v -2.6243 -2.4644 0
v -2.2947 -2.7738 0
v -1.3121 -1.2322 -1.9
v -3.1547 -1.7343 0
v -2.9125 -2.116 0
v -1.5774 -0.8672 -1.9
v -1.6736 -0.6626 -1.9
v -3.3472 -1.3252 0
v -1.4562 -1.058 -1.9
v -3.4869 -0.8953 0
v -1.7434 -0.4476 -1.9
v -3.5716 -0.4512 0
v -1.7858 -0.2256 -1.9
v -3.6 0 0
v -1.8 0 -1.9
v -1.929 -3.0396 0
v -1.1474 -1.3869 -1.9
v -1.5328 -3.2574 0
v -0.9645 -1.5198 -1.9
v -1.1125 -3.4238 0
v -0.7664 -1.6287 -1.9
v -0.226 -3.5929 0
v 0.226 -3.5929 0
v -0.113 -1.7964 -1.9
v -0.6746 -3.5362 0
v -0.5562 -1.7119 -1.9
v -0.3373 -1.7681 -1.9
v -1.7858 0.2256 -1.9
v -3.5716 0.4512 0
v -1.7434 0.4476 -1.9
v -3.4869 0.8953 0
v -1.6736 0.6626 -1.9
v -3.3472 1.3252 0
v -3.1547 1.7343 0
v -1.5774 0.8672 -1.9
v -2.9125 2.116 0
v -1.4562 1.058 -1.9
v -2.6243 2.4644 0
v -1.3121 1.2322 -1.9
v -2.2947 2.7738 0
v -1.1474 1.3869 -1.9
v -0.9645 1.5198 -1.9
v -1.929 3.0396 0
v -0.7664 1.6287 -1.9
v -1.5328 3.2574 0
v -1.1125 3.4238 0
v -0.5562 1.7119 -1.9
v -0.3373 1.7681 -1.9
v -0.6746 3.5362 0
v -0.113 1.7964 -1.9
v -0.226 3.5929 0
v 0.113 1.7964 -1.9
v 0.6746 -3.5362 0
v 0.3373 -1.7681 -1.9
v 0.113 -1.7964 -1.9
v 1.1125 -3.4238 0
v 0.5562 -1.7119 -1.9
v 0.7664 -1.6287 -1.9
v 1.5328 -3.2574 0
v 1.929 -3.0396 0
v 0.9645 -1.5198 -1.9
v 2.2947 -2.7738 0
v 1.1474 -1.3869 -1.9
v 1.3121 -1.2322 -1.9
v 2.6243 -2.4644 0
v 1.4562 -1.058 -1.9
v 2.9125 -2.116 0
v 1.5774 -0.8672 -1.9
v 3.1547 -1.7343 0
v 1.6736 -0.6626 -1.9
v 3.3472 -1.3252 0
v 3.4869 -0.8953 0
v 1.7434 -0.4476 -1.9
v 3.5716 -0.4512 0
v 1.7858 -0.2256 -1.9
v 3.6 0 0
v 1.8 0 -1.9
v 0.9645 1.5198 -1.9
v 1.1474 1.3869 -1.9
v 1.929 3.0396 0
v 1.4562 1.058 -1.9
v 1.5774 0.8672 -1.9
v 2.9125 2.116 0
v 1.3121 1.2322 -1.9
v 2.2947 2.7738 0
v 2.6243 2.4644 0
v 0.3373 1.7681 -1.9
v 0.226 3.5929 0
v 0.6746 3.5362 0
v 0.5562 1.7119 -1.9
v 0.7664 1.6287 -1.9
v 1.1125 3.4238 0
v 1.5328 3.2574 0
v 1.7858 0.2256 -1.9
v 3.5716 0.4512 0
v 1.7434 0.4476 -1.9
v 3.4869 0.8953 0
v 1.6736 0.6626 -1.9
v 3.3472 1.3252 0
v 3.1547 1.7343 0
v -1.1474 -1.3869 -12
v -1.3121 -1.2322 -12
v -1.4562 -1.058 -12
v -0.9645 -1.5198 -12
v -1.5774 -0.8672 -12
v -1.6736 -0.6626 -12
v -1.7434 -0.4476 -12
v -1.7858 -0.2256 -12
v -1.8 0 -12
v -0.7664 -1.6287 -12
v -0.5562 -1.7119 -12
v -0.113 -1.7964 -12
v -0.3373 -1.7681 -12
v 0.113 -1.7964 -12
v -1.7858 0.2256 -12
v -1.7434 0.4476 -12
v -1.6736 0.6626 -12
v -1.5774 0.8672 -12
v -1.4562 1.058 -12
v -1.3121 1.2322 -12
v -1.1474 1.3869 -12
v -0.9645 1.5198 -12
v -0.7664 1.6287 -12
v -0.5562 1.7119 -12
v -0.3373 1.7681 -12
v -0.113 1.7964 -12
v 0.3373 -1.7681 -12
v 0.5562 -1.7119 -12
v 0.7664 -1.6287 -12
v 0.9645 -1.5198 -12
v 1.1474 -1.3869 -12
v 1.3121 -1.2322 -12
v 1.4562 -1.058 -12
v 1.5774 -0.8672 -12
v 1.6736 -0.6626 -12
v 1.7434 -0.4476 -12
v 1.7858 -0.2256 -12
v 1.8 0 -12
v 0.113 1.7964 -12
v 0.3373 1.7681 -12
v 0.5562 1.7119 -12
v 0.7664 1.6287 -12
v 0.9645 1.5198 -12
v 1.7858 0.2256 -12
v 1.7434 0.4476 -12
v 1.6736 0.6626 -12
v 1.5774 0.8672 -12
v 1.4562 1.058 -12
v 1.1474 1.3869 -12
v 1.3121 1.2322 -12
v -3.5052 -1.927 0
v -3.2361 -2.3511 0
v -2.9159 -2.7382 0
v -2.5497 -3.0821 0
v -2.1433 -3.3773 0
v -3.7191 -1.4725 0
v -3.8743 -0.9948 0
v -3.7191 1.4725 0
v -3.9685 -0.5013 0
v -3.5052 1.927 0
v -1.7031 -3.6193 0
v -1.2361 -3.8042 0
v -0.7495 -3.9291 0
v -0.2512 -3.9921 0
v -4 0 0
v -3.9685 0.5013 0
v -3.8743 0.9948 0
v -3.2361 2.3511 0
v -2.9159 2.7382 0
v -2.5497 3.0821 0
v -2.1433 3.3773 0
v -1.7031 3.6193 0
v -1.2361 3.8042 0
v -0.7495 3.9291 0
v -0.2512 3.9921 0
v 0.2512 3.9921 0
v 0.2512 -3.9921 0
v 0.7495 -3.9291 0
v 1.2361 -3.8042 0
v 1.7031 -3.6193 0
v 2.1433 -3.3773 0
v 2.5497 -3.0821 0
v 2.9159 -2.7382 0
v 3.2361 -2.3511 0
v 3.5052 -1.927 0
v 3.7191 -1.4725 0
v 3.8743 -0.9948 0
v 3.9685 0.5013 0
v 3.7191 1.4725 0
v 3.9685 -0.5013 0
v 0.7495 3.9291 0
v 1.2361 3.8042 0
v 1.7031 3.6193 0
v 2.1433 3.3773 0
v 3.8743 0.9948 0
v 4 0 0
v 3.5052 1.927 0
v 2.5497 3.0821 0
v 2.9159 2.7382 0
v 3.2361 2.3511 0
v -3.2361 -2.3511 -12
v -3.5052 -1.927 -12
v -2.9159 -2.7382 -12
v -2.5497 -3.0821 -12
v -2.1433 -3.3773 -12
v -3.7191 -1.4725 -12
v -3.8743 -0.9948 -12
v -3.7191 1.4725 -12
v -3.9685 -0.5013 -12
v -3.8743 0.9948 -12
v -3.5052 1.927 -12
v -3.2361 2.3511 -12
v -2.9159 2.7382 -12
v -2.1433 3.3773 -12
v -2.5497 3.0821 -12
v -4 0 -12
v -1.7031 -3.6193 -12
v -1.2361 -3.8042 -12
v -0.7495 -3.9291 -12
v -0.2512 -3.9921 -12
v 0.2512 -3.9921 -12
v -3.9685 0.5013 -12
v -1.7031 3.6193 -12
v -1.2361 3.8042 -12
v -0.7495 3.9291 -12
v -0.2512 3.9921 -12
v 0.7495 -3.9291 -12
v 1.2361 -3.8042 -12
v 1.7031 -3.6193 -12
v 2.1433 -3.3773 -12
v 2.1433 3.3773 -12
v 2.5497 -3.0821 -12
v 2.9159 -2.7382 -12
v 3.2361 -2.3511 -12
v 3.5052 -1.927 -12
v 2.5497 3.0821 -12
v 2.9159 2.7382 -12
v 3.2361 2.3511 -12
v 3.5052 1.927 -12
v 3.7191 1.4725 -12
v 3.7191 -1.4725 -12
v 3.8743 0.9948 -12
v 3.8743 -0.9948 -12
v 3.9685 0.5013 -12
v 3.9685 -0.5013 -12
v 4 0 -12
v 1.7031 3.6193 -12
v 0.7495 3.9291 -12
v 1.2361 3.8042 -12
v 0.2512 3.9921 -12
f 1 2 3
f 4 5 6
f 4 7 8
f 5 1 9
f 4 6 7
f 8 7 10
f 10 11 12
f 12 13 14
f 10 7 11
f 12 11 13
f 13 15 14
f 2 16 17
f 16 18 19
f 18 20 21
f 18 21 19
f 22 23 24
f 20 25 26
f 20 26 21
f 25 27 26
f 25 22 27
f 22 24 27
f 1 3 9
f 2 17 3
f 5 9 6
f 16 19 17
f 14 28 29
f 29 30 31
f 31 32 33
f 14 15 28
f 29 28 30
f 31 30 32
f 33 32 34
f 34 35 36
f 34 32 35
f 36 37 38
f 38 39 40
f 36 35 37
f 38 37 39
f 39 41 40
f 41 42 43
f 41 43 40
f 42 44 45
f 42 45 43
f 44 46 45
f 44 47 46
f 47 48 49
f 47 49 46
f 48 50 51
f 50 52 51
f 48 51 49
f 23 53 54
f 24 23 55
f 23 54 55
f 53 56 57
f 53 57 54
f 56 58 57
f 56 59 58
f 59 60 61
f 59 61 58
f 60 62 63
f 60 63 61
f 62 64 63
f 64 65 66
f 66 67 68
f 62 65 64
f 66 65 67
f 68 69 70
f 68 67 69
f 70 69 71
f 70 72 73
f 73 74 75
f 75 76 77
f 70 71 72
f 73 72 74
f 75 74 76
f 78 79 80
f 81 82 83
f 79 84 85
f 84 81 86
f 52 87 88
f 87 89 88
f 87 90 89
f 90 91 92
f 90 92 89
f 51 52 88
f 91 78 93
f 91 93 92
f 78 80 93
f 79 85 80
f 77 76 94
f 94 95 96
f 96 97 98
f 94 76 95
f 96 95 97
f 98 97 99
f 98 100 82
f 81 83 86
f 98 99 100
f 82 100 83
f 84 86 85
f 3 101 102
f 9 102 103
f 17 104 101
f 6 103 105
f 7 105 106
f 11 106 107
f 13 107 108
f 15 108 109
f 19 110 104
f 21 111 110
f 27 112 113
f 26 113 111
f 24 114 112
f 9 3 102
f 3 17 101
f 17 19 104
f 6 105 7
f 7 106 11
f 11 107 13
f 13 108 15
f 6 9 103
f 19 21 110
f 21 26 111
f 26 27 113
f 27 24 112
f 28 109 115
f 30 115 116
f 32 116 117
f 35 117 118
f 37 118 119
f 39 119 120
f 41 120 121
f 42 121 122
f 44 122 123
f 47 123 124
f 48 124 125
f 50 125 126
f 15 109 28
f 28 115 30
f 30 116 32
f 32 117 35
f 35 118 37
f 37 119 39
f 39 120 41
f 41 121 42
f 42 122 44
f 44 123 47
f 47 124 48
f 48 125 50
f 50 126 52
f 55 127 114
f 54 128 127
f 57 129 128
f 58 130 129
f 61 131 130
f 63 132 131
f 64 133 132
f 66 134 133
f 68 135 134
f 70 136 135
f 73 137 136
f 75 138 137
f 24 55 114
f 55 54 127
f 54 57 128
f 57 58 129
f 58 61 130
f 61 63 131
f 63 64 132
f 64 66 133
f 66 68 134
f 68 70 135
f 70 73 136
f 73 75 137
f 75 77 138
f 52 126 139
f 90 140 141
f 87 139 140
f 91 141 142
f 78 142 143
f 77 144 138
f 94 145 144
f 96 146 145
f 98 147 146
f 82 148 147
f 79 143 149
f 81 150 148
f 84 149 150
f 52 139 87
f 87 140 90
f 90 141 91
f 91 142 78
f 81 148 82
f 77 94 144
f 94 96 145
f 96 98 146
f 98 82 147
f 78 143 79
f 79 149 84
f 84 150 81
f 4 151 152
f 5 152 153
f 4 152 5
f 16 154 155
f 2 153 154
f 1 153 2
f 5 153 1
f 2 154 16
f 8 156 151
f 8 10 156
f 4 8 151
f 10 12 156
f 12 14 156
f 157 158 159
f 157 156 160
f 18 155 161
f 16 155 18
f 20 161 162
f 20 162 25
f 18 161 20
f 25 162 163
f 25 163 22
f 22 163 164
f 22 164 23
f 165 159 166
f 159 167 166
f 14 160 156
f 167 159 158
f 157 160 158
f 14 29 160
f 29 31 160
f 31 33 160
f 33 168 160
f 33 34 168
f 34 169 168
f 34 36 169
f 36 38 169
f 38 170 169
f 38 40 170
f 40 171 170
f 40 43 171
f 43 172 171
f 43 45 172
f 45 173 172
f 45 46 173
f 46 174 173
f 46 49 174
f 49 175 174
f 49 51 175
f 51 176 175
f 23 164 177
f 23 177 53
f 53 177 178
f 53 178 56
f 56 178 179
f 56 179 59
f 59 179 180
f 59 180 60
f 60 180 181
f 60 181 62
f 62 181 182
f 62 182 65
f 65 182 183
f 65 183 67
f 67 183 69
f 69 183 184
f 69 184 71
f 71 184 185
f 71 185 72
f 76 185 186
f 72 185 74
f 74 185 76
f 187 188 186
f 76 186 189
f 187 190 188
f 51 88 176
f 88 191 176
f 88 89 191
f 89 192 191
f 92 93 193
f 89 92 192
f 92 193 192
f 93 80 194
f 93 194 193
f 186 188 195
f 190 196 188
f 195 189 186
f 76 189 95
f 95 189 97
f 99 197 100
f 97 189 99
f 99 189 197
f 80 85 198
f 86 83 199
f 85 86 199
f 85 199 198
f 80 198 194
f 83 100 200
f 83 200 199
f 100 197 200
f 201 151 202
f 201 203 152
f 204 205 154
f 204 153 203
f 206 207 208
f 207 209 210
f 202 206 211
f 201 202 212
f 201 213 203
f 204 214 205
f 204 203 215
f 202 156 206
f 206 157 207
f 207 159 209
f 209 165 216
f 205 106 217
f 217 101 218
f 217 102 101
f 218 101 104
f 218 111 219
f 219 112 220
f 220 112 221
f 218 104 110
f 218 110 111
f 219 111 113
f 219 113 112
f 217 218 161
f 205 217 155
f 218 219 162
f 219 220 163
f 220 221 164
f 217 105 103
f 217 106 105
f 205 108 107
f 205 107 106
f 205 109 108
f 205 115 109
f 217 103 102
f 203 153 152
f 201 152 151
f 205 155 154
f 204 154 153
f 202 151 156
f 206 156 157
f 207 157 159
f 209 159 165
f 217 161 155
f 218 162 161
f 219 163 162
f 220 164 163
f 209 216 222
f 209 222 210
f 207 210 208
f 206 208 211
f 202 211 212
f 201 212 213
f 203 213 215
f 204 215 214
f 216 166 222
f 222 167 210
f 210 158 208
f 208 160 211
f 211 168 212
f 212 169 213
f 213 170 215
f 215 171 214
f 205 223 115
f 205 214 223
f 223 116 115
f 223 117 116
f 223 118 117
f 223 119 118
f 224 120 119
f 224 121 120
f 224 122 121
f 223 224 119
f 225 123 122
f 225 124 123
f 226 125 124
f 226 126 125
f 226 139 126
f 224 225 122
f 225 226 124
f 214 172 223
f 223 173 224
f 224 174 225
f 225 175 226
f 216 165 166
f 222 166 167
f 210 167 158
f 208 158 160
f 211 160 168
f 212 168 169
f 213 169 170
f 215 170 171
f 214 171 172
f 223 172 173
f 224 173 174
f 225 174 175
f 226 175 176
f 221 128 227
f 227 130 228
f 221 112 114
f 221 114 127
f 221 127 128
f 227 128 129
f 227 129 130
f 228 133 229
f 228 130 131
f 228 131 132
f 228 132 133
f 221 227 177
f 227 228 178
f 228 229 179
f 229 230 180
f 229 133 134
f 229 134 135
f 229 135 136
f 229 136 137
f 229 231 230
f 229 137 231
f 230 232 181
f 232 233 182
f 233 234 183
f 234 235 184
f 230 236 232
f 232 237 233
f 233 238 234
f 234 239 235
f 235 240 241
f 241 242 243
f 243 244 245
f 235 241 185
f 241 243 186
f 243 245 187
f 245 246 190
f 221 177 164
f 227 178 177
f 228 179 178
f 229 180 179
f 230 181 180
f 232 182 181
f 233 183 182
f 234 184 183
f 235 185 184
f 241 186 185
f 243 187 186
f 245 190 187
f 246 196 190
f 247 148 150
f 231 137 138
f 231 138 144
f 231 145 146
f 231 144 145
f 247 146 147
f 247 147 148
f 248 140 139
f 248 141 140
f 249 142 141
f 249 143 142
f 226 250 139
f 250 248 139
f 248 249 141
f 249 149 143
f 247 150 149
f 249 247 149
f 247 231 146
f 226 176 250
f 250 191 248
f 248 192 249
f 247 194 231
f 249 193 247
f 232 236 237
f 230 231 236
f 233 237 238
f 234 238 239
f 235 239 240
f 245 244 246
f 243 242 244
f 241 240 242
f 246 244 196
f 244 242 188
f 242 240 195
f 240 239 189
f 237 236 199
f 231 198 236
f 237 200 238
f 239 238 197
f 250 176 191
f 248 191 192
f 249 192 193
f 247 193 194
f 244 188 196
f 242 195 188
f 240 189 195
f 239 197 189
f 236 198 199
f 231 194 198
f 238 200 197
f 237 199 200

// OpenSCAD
$fn = 50;

difference() {
	union() {
		translate(v = [0, 0, -12.0]) {
			cylinder(h = 15, r = 4.0);
		}
	}
	union() {
		translate(v = [0, 0, 0]) {
			rotate(a = [0, 0, 0]) {
				difference() {
					union() {
						translate(v = [0, 0, -15.0]) {
							cylinder(h = 15, r = 1.5);
						}
						translate(v = [0, 0, -1.9]) {
							cylinder(h = 1.9, r1 = 1.8, r2 = 3.6);
						}
						translate(v = [0, 0, -15.0]) {
							cylinder(h = 15, r = 1.8);
						}
						translate(v = [0, 0, -15.0]) {
							cylinder(h = 15, r = 1.5);
						}
					}
					union();
				}
			}
		}
		#cylinder(h = 3, r = 5.0);
	}
}
